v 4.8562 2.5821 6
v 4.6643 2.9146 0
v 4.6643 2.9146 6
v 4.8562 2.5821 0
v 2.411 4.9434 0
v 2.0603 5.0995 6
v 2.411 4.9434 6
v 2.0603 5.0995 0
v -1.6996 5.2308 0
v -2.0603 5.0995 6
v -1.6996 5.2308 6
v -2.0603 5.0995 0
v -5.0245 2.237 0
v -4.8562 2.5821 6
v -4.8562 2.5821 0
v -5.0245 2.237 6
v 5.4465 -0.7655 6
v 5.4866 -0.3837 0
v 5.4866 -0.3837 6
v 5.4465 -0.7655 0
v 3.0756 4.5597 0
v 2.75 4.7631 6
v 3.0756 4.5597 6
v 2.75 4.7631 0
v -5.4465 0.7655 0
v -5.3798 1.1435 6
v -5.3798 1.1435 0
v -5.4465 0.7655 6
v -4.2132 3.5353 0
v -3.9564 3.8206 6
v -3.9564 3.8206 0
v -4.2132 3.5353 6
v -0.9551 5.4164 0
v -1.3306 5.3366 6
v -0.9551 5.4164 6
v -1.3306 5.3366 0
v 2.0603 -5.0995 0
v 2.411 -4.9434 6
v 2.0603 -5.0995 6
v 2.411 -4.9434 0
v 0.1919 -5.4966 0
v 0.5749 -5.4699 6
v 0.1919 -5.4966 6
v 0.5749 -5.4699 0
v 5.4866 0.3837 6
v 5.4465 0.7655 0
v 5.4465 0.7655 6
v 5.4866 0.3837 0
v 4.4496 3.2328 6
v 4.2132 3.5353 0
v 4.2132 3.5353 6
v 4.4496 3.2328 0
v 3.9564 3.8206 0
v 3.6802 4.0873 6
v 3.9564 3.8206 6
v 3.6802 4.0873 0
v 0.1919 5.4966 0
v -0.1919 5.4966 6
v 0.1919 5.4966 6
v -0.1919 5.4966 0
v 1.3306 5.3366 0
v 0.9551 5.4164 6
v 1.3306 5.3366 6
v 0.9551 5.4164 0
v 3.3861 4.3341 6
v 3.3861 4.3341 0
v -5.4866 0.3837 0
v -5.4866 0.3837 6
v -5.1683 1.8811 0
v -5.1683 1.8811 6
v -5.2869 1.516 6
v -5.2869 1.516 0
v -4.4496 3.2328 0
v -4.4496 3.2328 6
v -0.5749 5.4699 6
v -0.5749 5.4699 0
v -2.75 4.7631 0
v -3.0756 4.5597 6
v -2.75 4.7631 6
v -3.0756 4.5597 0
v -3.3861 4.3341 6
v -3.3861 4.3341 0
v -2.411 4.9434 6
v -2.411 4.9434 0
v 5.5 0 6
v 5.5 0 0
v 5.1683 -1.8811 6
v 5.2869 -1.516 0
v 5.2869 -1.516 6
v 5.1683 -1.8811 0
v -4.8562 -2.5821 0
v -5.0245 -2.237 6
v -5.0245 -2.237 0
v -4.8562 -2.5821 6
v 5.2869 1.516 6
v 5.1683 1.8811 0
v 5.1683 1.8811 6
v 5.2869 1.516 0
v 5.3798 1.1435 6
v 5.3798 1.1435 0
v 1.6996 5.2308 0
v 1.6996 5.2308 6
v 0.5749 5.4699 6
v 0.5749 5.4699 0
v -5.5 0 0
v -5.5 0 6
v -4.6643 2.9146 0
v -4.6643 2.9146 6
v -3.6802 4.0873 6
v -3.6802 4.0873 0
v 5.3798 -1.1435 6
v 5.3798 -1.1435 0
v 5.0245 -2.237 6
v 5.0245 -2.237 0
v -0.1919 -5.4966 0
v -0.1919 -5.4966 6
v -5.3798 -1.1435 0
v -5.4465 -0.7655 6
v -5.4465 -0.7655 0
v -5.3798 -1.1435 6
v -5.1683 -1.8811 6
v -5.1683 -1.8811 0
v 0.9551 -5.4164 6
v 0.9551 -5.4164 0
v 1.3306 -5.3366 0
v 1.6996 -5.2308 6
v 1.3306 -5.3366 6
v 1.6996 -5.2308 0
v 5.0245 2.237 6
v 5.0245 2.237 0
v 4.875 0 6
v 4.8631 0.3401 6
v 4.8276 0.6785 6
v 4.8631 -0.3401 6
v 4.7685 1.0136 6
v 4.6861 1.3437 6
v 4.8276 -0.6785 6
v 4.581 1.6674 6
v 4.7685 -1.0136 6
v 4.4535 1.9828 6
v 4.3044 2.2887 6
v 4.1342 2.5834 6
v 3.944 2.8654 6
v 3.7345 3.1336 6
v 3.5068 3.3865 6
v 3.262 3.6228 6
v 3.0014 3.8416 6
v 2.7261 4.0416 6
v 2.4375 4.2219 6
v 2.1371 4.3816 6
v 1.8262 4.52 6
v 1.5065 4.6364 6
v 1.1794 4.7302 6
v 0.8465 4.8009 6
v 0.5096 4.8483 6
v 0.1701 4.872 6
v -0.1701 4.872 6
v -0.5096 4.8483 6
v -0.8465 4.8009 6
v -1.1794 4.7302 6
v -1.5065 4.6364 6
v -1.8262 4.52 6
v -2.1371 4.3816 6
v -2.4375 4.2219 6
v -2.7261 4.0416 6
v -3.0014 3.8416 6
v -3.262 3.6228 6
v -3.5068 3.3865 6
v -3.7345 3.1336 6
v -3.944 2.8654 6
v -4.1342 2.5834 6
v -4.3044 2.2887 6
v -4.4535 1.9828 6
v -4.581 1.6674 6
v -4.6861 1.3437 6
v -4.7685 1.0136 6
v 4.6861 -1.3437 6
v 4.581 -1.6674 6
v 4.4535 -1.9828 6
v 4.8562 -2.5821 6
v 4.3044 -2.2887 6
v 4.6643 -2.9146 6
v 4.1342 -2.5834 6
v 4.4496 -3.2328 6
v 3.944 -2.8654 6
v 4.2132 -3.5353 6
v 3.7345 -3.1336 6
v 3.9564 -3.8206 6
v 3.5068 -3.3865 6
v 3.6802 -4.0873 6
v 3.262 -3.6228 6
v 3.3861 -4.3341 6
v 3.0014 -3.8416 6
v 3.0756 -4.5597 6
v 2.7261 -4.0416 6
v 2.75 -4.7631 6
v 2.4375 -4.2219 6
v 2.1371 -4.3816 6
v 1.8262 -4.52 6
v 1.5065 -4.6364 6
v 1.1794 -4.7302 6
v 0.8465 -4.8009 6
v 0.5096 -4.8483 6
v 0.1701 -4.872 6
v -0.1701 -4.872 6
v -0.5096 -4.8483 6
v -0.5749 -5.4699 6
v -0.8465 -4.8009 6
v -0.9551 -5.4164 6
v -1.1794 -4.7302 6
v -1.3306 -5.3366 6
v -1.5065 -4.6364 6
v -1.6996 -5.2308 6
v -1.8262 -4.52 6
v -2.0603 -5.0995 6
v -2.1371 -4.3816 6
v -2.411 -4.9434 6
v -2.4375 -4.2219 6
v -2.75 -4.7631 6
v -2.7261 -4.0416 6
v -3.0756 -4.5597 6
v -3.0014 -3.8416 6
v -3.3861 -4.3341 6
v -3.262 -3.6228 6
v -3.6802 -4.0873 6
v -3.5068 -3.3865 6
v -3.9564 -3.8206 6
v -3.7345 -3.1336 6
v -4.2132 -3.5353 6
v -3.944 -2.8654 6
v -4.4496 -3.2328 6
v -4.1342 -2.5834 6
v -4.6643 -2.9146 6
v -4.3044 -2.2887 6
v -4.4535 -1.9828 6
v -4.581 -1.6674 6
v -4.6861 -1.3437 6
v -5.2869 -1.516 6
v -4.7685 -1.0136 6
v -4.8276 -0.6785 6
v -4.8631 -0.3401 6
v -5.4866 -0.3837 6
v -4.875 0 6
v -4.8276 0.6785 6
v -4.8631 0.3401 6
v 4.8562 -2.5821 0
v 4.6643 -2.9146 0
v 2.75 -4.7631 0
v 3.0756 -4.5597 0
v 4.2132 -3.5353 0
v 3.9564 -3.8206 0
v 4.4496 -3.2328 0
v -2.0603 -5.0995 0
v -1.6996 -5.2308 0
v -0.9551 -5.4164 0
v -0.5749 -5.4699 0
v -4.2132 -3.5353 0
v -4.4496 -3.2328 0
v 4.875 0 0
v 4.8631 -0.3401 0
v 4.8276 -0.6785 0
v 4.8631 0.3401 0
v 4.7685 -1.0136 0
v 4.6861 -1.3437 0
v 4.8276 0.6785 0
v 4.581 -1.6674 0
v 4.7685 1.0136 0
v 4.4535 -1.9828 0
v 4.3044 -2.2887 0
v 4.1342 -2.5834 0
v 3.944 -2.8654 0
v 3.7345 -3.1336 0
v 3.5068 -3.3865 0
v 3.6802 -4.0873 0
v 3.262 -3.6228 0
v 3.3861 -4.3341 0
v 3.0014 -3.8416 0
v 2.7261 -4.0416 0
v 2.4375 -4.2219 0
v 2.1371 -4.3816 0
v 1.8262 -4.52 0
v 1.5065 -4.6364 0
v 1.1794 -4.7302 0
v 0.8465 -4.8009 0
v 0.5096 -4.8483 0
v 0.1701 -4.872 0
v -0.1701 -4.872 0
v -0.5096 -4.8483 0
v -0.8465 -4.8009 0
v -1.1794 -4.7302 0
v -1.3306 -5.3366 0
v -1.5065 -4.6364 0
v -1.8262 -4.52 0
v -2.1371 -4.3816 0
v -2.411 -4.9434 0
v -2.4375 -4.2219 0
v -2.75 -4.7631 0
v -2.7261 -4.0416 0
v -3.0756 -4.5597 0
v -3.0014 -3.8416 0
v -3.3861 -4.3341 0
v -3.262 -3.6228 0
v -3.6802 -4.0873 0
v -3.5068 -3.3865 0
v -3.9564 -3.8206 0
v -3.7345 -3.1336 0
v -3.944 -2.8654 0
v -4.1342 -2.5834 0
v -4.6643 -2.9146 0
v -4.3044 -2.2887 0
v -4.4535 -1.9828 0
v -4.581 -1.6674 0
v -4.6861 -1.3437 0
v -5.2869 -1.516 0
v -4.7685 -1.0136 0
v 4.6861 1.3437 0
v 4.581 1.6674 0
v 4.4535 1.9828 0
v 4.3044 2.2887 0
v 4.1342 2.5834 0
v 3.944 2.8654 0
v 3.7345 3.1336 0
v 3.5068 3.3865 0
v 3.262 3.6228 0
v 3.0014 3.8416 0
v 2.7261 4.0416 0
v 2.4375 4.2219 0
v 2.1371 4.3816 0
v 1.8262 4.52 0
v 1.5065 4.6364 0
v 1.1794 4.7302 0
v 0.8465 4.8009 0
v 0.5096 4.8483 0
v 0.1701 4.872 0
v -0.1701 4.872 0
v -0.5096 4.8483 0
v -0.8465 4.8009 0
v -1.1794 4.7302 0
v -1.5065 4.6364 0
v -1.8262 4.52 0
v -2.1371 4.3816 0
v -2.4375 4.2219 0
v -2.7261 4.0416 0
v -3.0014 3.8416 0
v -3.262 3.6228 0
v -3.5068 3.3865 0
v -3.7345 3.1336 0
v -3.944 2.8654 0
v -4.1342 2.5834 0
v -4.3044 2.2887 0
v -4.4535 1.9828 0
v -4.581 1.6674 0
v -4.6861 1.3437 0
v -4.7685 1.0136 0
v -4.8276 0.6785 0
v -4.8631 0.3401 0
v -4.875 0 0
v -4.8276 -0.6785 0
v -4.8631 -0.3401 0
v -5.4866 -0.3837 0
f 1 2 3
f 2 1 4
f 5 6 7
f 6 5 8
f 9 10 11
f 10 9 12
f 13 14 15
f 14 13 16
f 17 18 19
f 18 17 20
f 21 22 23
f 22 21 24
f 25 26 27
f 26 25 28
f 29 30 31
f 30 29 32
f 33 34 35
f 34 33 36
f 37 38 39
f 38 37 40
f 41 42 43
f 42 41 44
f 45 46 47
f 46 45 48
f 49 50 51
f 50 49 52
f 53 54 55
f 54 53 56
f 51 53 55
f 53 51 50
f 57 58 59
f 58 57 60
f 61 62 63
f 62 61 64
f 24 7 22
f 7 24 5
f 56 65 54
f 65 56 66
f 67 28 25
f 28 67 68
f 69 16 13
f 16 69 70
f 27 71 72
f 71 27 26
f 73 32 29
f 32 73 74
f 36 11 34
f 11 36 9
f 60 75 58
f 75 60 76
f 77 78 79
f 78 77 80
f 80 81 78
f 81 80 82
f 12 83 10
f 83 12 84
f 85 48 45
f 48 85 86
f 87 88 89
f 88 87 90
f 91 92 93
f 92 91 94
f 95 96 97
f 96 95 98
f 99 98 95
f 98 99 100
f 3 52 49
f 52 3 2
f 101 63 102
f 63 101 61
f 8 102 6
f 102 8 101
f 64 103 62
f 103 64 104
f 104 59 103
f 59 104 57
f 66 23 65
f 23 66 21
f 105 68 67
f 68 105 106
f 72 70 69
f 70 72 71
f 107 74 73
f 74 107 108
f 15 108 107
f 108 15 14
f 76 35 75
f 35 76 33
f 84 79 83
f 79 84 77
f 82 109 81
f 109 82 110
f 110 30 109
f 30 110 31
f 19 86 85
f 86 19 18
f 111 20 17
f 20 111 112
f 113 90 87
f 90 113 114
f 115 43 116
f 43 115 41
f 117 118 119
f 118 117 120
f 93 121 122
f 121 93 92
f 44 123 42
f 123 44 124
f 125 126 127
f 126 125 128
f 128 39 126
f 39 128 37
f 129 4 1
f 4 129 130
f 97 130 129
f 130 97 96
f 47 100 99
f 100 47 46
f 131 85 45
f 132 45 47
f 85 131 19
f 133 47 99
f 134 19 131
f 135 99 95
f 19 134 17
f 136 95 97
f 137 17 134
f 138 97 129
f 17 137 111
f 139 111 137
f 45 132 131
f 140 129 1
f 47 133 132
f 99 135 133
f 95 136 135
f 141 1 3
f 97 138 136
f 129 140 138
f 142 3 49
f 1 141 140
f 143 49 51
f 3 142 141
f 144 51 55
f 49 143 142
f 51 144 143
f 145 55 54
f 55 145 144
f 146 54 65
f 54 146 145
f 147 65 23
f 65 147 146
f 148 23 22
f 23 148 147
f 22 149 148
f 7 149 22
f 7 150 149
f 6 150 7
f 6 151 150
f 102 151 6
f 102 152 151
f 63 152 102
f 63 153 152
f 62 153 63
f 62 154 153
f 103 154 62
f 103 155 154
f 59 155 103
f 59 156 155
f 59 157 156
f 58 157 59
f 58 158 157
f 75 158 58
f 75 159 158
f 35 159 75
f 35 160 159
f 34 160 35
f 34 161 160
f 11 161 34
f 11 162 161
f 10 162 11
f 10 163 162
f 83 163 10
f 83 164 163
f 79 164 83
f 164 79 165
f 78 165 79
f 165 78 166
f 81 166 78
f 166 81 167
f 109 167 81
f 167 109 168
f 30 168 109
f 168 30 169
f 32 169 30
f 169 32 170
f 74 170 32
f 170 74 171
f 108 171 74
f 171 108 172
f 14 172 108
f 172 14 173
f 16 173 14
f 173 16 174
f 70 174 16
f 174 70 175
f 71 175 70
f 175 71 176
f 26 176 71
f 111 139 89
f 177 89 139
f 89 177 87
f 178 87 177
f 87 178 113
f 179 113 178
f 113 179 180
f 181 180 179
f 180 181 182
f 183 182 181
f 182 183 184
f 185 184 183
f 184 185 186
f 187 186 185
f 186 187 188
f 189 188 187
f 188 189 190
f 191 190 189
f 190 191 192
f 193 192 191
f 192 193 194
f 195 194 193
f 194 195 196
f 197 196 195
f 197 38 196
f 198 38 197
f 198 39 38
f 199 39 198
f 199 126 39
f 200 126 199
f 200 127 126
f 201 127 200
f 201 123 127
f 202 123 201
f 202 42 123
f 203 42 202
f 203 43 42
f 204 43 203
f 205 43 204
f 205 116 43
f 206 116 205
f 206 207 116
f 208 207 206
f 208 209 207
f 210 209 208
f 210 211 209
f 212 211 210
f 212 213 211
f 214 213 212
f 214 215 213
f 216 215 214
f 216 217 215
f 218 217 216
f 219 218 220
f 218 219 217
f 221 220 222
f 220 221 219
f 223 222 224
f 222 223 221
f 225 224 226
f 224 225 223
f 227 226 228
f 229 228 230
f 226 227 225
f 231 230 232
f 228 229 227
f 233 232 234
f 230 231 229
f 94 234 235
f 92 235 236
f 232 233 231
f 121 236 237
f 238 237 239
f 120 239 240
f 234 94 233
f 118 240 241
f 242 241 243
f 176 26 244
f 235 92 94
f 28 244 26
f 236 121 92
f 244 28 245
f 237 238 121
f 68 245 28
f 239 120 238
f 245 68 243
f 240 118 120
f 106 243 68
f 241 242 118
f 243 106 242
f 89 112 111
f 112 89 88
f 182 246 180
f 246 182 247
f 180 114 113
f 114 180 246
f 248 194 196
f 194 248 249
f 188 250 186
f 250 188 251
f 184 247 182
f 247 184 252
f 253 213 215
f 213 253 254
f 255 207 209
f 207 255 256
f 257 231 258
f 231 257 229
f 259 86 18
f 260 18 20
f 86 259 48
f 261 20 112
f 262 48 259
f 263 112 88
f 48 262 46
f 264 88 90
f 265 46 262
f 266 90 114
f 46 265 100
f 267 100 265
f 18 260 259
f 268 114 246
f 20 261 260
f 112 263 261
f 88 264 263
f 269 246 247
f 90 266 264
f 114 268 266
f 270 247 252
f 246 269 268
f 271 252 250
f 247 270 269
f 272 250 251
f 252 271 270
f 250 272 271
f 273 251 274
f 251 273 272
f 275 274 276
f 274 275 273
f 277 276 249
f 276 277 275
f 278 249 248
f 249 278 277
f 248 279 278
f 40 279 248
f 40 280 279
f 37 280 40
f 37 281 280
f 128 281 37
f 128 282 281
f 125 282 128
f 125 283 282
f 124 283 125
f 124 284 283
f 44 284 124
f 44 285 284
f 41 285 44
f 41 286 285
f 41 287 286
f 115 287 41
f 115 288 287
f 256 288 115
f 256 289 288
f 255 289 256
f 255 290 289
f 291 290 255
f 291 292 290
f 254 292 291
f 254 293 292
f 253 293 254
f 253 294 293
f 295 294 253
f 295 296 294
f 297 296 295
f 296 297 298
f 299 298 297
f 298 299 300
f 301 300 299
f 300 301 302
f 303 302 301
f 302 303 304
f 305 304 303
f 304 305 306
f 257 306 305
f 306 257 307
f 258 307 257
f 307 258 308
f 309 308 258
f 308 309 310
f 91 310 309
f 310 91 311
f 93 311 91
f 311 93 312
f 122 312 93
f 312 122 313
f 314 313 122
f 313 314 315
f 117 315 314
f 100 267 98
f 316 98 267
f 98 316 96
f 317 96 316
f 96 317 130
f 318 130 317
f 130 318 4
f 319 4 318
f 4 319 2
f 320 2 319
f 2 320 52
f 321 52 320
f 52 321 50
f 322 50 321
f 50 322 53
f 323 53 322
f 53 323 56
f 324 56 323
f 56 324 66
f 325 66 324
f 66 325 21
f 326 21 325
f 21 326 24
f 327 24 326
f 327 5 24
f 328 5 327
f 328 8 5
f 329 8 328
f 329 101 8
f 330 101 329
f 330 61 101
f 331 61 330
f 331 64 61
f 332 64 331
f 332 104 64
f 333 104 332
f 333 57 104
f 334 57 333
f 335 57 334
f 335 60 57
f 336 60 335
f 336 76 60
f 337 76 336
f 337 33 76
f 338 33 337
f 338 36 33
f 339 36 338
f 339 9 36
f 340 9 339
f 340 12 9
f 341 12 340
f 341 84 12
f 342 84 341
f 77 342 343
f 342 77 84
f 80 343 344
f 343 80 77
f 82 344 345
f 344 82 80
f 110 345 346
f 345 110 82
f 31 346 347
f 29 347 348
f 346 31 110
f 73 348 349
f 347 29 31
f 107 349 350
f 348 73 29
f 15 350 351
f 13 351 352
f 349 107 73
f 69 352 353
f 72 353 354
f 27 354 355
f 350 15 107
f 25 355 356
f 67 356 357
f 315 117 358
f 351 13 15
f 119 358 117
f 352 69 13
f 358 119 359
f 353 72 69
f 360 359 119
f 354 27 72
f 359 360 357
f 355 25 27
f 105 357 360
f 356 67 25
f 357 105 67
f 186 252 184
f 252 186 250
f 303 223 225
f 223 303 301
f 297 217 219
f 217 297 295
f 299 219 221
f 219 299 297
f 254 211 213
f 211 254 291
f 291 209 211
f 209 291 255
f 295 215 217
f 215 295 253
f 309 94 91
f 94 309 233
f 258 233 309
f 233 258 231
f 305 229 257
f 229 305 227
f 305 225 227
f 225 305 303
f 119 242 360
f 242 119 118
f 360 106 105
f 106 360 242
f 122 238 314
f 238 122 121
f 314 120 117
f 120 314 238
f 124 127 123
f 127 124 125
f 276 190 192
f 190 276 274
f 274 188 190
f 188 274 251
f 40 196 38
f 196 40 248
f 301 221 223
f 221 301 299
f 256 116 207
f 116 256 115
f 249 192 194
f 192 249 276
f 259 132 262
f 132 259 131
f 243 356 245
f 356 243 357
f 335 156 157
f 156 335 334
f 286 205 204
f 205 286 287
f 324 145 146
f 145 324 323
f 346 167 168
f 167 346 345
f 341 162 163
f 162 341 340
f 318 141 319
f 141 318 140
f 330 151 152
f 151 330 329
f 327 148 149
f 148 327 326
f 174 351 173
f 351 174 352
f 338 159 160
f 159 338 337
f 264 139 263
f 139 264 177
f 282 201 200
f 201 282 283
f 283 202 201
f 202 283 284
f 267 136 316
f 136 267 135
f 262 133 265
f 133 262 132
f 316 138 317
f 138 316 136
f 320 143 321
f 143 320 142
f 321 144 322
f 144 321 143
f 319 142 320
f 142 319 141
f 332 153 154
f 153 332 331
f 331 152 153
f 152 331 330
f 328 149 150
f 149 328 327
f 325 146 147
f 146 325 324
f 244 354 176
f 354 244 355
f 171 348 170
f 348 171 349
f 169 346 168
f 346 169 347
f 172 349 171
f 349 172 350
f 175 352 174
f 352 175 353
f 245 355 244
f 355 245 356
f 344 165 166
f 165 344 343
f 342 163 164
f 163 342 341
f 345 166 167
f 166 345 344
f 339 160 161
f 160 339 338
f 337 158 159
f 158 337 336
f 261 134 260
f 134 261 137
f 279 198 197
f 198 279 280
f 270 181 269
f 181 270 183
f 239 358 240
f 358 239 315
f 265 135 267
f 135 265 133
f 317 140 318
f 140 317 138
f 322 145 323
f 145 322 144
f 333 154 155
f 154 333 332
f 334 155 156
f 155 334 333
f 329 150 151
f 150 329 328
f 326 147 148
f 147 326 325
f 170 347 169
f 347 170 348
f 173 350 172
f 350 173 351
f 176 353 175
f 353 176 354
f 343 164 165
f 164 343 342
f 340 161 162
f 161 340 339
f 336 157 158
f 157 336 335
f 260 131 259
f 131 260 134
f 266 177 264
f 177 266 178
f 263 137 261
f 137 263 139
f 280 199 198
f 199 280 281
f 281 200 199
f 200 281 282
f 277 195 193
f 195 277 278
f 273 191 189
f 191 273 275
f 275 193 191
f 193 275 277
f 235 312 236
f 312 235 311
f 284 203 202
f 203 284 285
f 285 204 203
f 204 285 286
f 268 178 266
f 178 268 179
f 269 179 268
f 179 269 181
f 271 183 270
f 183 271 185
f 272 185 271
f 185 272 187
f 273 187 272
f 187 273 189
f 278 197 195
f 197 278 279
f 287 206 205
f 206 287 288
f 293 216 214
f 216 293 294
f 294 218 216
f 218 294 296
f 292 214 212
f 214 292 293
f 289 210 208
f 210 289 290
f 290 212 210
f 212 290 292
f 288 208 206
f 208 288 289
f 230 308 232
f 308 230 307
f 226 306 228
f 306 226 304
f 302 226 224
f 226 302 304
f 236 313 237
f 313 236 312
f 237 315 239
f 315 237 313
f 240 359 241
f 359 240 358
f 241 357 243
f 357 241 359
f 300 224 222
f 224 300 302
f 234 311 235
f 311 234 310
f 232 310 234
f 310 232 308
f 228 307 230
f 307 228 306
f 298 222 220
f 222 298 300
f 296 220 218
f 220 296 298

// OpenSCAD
$fn = 90;

difference(){
    cylinder(d=11, h=6);
    translate([0,0,-1]) cylinder(d=9.75, h=9);
}
